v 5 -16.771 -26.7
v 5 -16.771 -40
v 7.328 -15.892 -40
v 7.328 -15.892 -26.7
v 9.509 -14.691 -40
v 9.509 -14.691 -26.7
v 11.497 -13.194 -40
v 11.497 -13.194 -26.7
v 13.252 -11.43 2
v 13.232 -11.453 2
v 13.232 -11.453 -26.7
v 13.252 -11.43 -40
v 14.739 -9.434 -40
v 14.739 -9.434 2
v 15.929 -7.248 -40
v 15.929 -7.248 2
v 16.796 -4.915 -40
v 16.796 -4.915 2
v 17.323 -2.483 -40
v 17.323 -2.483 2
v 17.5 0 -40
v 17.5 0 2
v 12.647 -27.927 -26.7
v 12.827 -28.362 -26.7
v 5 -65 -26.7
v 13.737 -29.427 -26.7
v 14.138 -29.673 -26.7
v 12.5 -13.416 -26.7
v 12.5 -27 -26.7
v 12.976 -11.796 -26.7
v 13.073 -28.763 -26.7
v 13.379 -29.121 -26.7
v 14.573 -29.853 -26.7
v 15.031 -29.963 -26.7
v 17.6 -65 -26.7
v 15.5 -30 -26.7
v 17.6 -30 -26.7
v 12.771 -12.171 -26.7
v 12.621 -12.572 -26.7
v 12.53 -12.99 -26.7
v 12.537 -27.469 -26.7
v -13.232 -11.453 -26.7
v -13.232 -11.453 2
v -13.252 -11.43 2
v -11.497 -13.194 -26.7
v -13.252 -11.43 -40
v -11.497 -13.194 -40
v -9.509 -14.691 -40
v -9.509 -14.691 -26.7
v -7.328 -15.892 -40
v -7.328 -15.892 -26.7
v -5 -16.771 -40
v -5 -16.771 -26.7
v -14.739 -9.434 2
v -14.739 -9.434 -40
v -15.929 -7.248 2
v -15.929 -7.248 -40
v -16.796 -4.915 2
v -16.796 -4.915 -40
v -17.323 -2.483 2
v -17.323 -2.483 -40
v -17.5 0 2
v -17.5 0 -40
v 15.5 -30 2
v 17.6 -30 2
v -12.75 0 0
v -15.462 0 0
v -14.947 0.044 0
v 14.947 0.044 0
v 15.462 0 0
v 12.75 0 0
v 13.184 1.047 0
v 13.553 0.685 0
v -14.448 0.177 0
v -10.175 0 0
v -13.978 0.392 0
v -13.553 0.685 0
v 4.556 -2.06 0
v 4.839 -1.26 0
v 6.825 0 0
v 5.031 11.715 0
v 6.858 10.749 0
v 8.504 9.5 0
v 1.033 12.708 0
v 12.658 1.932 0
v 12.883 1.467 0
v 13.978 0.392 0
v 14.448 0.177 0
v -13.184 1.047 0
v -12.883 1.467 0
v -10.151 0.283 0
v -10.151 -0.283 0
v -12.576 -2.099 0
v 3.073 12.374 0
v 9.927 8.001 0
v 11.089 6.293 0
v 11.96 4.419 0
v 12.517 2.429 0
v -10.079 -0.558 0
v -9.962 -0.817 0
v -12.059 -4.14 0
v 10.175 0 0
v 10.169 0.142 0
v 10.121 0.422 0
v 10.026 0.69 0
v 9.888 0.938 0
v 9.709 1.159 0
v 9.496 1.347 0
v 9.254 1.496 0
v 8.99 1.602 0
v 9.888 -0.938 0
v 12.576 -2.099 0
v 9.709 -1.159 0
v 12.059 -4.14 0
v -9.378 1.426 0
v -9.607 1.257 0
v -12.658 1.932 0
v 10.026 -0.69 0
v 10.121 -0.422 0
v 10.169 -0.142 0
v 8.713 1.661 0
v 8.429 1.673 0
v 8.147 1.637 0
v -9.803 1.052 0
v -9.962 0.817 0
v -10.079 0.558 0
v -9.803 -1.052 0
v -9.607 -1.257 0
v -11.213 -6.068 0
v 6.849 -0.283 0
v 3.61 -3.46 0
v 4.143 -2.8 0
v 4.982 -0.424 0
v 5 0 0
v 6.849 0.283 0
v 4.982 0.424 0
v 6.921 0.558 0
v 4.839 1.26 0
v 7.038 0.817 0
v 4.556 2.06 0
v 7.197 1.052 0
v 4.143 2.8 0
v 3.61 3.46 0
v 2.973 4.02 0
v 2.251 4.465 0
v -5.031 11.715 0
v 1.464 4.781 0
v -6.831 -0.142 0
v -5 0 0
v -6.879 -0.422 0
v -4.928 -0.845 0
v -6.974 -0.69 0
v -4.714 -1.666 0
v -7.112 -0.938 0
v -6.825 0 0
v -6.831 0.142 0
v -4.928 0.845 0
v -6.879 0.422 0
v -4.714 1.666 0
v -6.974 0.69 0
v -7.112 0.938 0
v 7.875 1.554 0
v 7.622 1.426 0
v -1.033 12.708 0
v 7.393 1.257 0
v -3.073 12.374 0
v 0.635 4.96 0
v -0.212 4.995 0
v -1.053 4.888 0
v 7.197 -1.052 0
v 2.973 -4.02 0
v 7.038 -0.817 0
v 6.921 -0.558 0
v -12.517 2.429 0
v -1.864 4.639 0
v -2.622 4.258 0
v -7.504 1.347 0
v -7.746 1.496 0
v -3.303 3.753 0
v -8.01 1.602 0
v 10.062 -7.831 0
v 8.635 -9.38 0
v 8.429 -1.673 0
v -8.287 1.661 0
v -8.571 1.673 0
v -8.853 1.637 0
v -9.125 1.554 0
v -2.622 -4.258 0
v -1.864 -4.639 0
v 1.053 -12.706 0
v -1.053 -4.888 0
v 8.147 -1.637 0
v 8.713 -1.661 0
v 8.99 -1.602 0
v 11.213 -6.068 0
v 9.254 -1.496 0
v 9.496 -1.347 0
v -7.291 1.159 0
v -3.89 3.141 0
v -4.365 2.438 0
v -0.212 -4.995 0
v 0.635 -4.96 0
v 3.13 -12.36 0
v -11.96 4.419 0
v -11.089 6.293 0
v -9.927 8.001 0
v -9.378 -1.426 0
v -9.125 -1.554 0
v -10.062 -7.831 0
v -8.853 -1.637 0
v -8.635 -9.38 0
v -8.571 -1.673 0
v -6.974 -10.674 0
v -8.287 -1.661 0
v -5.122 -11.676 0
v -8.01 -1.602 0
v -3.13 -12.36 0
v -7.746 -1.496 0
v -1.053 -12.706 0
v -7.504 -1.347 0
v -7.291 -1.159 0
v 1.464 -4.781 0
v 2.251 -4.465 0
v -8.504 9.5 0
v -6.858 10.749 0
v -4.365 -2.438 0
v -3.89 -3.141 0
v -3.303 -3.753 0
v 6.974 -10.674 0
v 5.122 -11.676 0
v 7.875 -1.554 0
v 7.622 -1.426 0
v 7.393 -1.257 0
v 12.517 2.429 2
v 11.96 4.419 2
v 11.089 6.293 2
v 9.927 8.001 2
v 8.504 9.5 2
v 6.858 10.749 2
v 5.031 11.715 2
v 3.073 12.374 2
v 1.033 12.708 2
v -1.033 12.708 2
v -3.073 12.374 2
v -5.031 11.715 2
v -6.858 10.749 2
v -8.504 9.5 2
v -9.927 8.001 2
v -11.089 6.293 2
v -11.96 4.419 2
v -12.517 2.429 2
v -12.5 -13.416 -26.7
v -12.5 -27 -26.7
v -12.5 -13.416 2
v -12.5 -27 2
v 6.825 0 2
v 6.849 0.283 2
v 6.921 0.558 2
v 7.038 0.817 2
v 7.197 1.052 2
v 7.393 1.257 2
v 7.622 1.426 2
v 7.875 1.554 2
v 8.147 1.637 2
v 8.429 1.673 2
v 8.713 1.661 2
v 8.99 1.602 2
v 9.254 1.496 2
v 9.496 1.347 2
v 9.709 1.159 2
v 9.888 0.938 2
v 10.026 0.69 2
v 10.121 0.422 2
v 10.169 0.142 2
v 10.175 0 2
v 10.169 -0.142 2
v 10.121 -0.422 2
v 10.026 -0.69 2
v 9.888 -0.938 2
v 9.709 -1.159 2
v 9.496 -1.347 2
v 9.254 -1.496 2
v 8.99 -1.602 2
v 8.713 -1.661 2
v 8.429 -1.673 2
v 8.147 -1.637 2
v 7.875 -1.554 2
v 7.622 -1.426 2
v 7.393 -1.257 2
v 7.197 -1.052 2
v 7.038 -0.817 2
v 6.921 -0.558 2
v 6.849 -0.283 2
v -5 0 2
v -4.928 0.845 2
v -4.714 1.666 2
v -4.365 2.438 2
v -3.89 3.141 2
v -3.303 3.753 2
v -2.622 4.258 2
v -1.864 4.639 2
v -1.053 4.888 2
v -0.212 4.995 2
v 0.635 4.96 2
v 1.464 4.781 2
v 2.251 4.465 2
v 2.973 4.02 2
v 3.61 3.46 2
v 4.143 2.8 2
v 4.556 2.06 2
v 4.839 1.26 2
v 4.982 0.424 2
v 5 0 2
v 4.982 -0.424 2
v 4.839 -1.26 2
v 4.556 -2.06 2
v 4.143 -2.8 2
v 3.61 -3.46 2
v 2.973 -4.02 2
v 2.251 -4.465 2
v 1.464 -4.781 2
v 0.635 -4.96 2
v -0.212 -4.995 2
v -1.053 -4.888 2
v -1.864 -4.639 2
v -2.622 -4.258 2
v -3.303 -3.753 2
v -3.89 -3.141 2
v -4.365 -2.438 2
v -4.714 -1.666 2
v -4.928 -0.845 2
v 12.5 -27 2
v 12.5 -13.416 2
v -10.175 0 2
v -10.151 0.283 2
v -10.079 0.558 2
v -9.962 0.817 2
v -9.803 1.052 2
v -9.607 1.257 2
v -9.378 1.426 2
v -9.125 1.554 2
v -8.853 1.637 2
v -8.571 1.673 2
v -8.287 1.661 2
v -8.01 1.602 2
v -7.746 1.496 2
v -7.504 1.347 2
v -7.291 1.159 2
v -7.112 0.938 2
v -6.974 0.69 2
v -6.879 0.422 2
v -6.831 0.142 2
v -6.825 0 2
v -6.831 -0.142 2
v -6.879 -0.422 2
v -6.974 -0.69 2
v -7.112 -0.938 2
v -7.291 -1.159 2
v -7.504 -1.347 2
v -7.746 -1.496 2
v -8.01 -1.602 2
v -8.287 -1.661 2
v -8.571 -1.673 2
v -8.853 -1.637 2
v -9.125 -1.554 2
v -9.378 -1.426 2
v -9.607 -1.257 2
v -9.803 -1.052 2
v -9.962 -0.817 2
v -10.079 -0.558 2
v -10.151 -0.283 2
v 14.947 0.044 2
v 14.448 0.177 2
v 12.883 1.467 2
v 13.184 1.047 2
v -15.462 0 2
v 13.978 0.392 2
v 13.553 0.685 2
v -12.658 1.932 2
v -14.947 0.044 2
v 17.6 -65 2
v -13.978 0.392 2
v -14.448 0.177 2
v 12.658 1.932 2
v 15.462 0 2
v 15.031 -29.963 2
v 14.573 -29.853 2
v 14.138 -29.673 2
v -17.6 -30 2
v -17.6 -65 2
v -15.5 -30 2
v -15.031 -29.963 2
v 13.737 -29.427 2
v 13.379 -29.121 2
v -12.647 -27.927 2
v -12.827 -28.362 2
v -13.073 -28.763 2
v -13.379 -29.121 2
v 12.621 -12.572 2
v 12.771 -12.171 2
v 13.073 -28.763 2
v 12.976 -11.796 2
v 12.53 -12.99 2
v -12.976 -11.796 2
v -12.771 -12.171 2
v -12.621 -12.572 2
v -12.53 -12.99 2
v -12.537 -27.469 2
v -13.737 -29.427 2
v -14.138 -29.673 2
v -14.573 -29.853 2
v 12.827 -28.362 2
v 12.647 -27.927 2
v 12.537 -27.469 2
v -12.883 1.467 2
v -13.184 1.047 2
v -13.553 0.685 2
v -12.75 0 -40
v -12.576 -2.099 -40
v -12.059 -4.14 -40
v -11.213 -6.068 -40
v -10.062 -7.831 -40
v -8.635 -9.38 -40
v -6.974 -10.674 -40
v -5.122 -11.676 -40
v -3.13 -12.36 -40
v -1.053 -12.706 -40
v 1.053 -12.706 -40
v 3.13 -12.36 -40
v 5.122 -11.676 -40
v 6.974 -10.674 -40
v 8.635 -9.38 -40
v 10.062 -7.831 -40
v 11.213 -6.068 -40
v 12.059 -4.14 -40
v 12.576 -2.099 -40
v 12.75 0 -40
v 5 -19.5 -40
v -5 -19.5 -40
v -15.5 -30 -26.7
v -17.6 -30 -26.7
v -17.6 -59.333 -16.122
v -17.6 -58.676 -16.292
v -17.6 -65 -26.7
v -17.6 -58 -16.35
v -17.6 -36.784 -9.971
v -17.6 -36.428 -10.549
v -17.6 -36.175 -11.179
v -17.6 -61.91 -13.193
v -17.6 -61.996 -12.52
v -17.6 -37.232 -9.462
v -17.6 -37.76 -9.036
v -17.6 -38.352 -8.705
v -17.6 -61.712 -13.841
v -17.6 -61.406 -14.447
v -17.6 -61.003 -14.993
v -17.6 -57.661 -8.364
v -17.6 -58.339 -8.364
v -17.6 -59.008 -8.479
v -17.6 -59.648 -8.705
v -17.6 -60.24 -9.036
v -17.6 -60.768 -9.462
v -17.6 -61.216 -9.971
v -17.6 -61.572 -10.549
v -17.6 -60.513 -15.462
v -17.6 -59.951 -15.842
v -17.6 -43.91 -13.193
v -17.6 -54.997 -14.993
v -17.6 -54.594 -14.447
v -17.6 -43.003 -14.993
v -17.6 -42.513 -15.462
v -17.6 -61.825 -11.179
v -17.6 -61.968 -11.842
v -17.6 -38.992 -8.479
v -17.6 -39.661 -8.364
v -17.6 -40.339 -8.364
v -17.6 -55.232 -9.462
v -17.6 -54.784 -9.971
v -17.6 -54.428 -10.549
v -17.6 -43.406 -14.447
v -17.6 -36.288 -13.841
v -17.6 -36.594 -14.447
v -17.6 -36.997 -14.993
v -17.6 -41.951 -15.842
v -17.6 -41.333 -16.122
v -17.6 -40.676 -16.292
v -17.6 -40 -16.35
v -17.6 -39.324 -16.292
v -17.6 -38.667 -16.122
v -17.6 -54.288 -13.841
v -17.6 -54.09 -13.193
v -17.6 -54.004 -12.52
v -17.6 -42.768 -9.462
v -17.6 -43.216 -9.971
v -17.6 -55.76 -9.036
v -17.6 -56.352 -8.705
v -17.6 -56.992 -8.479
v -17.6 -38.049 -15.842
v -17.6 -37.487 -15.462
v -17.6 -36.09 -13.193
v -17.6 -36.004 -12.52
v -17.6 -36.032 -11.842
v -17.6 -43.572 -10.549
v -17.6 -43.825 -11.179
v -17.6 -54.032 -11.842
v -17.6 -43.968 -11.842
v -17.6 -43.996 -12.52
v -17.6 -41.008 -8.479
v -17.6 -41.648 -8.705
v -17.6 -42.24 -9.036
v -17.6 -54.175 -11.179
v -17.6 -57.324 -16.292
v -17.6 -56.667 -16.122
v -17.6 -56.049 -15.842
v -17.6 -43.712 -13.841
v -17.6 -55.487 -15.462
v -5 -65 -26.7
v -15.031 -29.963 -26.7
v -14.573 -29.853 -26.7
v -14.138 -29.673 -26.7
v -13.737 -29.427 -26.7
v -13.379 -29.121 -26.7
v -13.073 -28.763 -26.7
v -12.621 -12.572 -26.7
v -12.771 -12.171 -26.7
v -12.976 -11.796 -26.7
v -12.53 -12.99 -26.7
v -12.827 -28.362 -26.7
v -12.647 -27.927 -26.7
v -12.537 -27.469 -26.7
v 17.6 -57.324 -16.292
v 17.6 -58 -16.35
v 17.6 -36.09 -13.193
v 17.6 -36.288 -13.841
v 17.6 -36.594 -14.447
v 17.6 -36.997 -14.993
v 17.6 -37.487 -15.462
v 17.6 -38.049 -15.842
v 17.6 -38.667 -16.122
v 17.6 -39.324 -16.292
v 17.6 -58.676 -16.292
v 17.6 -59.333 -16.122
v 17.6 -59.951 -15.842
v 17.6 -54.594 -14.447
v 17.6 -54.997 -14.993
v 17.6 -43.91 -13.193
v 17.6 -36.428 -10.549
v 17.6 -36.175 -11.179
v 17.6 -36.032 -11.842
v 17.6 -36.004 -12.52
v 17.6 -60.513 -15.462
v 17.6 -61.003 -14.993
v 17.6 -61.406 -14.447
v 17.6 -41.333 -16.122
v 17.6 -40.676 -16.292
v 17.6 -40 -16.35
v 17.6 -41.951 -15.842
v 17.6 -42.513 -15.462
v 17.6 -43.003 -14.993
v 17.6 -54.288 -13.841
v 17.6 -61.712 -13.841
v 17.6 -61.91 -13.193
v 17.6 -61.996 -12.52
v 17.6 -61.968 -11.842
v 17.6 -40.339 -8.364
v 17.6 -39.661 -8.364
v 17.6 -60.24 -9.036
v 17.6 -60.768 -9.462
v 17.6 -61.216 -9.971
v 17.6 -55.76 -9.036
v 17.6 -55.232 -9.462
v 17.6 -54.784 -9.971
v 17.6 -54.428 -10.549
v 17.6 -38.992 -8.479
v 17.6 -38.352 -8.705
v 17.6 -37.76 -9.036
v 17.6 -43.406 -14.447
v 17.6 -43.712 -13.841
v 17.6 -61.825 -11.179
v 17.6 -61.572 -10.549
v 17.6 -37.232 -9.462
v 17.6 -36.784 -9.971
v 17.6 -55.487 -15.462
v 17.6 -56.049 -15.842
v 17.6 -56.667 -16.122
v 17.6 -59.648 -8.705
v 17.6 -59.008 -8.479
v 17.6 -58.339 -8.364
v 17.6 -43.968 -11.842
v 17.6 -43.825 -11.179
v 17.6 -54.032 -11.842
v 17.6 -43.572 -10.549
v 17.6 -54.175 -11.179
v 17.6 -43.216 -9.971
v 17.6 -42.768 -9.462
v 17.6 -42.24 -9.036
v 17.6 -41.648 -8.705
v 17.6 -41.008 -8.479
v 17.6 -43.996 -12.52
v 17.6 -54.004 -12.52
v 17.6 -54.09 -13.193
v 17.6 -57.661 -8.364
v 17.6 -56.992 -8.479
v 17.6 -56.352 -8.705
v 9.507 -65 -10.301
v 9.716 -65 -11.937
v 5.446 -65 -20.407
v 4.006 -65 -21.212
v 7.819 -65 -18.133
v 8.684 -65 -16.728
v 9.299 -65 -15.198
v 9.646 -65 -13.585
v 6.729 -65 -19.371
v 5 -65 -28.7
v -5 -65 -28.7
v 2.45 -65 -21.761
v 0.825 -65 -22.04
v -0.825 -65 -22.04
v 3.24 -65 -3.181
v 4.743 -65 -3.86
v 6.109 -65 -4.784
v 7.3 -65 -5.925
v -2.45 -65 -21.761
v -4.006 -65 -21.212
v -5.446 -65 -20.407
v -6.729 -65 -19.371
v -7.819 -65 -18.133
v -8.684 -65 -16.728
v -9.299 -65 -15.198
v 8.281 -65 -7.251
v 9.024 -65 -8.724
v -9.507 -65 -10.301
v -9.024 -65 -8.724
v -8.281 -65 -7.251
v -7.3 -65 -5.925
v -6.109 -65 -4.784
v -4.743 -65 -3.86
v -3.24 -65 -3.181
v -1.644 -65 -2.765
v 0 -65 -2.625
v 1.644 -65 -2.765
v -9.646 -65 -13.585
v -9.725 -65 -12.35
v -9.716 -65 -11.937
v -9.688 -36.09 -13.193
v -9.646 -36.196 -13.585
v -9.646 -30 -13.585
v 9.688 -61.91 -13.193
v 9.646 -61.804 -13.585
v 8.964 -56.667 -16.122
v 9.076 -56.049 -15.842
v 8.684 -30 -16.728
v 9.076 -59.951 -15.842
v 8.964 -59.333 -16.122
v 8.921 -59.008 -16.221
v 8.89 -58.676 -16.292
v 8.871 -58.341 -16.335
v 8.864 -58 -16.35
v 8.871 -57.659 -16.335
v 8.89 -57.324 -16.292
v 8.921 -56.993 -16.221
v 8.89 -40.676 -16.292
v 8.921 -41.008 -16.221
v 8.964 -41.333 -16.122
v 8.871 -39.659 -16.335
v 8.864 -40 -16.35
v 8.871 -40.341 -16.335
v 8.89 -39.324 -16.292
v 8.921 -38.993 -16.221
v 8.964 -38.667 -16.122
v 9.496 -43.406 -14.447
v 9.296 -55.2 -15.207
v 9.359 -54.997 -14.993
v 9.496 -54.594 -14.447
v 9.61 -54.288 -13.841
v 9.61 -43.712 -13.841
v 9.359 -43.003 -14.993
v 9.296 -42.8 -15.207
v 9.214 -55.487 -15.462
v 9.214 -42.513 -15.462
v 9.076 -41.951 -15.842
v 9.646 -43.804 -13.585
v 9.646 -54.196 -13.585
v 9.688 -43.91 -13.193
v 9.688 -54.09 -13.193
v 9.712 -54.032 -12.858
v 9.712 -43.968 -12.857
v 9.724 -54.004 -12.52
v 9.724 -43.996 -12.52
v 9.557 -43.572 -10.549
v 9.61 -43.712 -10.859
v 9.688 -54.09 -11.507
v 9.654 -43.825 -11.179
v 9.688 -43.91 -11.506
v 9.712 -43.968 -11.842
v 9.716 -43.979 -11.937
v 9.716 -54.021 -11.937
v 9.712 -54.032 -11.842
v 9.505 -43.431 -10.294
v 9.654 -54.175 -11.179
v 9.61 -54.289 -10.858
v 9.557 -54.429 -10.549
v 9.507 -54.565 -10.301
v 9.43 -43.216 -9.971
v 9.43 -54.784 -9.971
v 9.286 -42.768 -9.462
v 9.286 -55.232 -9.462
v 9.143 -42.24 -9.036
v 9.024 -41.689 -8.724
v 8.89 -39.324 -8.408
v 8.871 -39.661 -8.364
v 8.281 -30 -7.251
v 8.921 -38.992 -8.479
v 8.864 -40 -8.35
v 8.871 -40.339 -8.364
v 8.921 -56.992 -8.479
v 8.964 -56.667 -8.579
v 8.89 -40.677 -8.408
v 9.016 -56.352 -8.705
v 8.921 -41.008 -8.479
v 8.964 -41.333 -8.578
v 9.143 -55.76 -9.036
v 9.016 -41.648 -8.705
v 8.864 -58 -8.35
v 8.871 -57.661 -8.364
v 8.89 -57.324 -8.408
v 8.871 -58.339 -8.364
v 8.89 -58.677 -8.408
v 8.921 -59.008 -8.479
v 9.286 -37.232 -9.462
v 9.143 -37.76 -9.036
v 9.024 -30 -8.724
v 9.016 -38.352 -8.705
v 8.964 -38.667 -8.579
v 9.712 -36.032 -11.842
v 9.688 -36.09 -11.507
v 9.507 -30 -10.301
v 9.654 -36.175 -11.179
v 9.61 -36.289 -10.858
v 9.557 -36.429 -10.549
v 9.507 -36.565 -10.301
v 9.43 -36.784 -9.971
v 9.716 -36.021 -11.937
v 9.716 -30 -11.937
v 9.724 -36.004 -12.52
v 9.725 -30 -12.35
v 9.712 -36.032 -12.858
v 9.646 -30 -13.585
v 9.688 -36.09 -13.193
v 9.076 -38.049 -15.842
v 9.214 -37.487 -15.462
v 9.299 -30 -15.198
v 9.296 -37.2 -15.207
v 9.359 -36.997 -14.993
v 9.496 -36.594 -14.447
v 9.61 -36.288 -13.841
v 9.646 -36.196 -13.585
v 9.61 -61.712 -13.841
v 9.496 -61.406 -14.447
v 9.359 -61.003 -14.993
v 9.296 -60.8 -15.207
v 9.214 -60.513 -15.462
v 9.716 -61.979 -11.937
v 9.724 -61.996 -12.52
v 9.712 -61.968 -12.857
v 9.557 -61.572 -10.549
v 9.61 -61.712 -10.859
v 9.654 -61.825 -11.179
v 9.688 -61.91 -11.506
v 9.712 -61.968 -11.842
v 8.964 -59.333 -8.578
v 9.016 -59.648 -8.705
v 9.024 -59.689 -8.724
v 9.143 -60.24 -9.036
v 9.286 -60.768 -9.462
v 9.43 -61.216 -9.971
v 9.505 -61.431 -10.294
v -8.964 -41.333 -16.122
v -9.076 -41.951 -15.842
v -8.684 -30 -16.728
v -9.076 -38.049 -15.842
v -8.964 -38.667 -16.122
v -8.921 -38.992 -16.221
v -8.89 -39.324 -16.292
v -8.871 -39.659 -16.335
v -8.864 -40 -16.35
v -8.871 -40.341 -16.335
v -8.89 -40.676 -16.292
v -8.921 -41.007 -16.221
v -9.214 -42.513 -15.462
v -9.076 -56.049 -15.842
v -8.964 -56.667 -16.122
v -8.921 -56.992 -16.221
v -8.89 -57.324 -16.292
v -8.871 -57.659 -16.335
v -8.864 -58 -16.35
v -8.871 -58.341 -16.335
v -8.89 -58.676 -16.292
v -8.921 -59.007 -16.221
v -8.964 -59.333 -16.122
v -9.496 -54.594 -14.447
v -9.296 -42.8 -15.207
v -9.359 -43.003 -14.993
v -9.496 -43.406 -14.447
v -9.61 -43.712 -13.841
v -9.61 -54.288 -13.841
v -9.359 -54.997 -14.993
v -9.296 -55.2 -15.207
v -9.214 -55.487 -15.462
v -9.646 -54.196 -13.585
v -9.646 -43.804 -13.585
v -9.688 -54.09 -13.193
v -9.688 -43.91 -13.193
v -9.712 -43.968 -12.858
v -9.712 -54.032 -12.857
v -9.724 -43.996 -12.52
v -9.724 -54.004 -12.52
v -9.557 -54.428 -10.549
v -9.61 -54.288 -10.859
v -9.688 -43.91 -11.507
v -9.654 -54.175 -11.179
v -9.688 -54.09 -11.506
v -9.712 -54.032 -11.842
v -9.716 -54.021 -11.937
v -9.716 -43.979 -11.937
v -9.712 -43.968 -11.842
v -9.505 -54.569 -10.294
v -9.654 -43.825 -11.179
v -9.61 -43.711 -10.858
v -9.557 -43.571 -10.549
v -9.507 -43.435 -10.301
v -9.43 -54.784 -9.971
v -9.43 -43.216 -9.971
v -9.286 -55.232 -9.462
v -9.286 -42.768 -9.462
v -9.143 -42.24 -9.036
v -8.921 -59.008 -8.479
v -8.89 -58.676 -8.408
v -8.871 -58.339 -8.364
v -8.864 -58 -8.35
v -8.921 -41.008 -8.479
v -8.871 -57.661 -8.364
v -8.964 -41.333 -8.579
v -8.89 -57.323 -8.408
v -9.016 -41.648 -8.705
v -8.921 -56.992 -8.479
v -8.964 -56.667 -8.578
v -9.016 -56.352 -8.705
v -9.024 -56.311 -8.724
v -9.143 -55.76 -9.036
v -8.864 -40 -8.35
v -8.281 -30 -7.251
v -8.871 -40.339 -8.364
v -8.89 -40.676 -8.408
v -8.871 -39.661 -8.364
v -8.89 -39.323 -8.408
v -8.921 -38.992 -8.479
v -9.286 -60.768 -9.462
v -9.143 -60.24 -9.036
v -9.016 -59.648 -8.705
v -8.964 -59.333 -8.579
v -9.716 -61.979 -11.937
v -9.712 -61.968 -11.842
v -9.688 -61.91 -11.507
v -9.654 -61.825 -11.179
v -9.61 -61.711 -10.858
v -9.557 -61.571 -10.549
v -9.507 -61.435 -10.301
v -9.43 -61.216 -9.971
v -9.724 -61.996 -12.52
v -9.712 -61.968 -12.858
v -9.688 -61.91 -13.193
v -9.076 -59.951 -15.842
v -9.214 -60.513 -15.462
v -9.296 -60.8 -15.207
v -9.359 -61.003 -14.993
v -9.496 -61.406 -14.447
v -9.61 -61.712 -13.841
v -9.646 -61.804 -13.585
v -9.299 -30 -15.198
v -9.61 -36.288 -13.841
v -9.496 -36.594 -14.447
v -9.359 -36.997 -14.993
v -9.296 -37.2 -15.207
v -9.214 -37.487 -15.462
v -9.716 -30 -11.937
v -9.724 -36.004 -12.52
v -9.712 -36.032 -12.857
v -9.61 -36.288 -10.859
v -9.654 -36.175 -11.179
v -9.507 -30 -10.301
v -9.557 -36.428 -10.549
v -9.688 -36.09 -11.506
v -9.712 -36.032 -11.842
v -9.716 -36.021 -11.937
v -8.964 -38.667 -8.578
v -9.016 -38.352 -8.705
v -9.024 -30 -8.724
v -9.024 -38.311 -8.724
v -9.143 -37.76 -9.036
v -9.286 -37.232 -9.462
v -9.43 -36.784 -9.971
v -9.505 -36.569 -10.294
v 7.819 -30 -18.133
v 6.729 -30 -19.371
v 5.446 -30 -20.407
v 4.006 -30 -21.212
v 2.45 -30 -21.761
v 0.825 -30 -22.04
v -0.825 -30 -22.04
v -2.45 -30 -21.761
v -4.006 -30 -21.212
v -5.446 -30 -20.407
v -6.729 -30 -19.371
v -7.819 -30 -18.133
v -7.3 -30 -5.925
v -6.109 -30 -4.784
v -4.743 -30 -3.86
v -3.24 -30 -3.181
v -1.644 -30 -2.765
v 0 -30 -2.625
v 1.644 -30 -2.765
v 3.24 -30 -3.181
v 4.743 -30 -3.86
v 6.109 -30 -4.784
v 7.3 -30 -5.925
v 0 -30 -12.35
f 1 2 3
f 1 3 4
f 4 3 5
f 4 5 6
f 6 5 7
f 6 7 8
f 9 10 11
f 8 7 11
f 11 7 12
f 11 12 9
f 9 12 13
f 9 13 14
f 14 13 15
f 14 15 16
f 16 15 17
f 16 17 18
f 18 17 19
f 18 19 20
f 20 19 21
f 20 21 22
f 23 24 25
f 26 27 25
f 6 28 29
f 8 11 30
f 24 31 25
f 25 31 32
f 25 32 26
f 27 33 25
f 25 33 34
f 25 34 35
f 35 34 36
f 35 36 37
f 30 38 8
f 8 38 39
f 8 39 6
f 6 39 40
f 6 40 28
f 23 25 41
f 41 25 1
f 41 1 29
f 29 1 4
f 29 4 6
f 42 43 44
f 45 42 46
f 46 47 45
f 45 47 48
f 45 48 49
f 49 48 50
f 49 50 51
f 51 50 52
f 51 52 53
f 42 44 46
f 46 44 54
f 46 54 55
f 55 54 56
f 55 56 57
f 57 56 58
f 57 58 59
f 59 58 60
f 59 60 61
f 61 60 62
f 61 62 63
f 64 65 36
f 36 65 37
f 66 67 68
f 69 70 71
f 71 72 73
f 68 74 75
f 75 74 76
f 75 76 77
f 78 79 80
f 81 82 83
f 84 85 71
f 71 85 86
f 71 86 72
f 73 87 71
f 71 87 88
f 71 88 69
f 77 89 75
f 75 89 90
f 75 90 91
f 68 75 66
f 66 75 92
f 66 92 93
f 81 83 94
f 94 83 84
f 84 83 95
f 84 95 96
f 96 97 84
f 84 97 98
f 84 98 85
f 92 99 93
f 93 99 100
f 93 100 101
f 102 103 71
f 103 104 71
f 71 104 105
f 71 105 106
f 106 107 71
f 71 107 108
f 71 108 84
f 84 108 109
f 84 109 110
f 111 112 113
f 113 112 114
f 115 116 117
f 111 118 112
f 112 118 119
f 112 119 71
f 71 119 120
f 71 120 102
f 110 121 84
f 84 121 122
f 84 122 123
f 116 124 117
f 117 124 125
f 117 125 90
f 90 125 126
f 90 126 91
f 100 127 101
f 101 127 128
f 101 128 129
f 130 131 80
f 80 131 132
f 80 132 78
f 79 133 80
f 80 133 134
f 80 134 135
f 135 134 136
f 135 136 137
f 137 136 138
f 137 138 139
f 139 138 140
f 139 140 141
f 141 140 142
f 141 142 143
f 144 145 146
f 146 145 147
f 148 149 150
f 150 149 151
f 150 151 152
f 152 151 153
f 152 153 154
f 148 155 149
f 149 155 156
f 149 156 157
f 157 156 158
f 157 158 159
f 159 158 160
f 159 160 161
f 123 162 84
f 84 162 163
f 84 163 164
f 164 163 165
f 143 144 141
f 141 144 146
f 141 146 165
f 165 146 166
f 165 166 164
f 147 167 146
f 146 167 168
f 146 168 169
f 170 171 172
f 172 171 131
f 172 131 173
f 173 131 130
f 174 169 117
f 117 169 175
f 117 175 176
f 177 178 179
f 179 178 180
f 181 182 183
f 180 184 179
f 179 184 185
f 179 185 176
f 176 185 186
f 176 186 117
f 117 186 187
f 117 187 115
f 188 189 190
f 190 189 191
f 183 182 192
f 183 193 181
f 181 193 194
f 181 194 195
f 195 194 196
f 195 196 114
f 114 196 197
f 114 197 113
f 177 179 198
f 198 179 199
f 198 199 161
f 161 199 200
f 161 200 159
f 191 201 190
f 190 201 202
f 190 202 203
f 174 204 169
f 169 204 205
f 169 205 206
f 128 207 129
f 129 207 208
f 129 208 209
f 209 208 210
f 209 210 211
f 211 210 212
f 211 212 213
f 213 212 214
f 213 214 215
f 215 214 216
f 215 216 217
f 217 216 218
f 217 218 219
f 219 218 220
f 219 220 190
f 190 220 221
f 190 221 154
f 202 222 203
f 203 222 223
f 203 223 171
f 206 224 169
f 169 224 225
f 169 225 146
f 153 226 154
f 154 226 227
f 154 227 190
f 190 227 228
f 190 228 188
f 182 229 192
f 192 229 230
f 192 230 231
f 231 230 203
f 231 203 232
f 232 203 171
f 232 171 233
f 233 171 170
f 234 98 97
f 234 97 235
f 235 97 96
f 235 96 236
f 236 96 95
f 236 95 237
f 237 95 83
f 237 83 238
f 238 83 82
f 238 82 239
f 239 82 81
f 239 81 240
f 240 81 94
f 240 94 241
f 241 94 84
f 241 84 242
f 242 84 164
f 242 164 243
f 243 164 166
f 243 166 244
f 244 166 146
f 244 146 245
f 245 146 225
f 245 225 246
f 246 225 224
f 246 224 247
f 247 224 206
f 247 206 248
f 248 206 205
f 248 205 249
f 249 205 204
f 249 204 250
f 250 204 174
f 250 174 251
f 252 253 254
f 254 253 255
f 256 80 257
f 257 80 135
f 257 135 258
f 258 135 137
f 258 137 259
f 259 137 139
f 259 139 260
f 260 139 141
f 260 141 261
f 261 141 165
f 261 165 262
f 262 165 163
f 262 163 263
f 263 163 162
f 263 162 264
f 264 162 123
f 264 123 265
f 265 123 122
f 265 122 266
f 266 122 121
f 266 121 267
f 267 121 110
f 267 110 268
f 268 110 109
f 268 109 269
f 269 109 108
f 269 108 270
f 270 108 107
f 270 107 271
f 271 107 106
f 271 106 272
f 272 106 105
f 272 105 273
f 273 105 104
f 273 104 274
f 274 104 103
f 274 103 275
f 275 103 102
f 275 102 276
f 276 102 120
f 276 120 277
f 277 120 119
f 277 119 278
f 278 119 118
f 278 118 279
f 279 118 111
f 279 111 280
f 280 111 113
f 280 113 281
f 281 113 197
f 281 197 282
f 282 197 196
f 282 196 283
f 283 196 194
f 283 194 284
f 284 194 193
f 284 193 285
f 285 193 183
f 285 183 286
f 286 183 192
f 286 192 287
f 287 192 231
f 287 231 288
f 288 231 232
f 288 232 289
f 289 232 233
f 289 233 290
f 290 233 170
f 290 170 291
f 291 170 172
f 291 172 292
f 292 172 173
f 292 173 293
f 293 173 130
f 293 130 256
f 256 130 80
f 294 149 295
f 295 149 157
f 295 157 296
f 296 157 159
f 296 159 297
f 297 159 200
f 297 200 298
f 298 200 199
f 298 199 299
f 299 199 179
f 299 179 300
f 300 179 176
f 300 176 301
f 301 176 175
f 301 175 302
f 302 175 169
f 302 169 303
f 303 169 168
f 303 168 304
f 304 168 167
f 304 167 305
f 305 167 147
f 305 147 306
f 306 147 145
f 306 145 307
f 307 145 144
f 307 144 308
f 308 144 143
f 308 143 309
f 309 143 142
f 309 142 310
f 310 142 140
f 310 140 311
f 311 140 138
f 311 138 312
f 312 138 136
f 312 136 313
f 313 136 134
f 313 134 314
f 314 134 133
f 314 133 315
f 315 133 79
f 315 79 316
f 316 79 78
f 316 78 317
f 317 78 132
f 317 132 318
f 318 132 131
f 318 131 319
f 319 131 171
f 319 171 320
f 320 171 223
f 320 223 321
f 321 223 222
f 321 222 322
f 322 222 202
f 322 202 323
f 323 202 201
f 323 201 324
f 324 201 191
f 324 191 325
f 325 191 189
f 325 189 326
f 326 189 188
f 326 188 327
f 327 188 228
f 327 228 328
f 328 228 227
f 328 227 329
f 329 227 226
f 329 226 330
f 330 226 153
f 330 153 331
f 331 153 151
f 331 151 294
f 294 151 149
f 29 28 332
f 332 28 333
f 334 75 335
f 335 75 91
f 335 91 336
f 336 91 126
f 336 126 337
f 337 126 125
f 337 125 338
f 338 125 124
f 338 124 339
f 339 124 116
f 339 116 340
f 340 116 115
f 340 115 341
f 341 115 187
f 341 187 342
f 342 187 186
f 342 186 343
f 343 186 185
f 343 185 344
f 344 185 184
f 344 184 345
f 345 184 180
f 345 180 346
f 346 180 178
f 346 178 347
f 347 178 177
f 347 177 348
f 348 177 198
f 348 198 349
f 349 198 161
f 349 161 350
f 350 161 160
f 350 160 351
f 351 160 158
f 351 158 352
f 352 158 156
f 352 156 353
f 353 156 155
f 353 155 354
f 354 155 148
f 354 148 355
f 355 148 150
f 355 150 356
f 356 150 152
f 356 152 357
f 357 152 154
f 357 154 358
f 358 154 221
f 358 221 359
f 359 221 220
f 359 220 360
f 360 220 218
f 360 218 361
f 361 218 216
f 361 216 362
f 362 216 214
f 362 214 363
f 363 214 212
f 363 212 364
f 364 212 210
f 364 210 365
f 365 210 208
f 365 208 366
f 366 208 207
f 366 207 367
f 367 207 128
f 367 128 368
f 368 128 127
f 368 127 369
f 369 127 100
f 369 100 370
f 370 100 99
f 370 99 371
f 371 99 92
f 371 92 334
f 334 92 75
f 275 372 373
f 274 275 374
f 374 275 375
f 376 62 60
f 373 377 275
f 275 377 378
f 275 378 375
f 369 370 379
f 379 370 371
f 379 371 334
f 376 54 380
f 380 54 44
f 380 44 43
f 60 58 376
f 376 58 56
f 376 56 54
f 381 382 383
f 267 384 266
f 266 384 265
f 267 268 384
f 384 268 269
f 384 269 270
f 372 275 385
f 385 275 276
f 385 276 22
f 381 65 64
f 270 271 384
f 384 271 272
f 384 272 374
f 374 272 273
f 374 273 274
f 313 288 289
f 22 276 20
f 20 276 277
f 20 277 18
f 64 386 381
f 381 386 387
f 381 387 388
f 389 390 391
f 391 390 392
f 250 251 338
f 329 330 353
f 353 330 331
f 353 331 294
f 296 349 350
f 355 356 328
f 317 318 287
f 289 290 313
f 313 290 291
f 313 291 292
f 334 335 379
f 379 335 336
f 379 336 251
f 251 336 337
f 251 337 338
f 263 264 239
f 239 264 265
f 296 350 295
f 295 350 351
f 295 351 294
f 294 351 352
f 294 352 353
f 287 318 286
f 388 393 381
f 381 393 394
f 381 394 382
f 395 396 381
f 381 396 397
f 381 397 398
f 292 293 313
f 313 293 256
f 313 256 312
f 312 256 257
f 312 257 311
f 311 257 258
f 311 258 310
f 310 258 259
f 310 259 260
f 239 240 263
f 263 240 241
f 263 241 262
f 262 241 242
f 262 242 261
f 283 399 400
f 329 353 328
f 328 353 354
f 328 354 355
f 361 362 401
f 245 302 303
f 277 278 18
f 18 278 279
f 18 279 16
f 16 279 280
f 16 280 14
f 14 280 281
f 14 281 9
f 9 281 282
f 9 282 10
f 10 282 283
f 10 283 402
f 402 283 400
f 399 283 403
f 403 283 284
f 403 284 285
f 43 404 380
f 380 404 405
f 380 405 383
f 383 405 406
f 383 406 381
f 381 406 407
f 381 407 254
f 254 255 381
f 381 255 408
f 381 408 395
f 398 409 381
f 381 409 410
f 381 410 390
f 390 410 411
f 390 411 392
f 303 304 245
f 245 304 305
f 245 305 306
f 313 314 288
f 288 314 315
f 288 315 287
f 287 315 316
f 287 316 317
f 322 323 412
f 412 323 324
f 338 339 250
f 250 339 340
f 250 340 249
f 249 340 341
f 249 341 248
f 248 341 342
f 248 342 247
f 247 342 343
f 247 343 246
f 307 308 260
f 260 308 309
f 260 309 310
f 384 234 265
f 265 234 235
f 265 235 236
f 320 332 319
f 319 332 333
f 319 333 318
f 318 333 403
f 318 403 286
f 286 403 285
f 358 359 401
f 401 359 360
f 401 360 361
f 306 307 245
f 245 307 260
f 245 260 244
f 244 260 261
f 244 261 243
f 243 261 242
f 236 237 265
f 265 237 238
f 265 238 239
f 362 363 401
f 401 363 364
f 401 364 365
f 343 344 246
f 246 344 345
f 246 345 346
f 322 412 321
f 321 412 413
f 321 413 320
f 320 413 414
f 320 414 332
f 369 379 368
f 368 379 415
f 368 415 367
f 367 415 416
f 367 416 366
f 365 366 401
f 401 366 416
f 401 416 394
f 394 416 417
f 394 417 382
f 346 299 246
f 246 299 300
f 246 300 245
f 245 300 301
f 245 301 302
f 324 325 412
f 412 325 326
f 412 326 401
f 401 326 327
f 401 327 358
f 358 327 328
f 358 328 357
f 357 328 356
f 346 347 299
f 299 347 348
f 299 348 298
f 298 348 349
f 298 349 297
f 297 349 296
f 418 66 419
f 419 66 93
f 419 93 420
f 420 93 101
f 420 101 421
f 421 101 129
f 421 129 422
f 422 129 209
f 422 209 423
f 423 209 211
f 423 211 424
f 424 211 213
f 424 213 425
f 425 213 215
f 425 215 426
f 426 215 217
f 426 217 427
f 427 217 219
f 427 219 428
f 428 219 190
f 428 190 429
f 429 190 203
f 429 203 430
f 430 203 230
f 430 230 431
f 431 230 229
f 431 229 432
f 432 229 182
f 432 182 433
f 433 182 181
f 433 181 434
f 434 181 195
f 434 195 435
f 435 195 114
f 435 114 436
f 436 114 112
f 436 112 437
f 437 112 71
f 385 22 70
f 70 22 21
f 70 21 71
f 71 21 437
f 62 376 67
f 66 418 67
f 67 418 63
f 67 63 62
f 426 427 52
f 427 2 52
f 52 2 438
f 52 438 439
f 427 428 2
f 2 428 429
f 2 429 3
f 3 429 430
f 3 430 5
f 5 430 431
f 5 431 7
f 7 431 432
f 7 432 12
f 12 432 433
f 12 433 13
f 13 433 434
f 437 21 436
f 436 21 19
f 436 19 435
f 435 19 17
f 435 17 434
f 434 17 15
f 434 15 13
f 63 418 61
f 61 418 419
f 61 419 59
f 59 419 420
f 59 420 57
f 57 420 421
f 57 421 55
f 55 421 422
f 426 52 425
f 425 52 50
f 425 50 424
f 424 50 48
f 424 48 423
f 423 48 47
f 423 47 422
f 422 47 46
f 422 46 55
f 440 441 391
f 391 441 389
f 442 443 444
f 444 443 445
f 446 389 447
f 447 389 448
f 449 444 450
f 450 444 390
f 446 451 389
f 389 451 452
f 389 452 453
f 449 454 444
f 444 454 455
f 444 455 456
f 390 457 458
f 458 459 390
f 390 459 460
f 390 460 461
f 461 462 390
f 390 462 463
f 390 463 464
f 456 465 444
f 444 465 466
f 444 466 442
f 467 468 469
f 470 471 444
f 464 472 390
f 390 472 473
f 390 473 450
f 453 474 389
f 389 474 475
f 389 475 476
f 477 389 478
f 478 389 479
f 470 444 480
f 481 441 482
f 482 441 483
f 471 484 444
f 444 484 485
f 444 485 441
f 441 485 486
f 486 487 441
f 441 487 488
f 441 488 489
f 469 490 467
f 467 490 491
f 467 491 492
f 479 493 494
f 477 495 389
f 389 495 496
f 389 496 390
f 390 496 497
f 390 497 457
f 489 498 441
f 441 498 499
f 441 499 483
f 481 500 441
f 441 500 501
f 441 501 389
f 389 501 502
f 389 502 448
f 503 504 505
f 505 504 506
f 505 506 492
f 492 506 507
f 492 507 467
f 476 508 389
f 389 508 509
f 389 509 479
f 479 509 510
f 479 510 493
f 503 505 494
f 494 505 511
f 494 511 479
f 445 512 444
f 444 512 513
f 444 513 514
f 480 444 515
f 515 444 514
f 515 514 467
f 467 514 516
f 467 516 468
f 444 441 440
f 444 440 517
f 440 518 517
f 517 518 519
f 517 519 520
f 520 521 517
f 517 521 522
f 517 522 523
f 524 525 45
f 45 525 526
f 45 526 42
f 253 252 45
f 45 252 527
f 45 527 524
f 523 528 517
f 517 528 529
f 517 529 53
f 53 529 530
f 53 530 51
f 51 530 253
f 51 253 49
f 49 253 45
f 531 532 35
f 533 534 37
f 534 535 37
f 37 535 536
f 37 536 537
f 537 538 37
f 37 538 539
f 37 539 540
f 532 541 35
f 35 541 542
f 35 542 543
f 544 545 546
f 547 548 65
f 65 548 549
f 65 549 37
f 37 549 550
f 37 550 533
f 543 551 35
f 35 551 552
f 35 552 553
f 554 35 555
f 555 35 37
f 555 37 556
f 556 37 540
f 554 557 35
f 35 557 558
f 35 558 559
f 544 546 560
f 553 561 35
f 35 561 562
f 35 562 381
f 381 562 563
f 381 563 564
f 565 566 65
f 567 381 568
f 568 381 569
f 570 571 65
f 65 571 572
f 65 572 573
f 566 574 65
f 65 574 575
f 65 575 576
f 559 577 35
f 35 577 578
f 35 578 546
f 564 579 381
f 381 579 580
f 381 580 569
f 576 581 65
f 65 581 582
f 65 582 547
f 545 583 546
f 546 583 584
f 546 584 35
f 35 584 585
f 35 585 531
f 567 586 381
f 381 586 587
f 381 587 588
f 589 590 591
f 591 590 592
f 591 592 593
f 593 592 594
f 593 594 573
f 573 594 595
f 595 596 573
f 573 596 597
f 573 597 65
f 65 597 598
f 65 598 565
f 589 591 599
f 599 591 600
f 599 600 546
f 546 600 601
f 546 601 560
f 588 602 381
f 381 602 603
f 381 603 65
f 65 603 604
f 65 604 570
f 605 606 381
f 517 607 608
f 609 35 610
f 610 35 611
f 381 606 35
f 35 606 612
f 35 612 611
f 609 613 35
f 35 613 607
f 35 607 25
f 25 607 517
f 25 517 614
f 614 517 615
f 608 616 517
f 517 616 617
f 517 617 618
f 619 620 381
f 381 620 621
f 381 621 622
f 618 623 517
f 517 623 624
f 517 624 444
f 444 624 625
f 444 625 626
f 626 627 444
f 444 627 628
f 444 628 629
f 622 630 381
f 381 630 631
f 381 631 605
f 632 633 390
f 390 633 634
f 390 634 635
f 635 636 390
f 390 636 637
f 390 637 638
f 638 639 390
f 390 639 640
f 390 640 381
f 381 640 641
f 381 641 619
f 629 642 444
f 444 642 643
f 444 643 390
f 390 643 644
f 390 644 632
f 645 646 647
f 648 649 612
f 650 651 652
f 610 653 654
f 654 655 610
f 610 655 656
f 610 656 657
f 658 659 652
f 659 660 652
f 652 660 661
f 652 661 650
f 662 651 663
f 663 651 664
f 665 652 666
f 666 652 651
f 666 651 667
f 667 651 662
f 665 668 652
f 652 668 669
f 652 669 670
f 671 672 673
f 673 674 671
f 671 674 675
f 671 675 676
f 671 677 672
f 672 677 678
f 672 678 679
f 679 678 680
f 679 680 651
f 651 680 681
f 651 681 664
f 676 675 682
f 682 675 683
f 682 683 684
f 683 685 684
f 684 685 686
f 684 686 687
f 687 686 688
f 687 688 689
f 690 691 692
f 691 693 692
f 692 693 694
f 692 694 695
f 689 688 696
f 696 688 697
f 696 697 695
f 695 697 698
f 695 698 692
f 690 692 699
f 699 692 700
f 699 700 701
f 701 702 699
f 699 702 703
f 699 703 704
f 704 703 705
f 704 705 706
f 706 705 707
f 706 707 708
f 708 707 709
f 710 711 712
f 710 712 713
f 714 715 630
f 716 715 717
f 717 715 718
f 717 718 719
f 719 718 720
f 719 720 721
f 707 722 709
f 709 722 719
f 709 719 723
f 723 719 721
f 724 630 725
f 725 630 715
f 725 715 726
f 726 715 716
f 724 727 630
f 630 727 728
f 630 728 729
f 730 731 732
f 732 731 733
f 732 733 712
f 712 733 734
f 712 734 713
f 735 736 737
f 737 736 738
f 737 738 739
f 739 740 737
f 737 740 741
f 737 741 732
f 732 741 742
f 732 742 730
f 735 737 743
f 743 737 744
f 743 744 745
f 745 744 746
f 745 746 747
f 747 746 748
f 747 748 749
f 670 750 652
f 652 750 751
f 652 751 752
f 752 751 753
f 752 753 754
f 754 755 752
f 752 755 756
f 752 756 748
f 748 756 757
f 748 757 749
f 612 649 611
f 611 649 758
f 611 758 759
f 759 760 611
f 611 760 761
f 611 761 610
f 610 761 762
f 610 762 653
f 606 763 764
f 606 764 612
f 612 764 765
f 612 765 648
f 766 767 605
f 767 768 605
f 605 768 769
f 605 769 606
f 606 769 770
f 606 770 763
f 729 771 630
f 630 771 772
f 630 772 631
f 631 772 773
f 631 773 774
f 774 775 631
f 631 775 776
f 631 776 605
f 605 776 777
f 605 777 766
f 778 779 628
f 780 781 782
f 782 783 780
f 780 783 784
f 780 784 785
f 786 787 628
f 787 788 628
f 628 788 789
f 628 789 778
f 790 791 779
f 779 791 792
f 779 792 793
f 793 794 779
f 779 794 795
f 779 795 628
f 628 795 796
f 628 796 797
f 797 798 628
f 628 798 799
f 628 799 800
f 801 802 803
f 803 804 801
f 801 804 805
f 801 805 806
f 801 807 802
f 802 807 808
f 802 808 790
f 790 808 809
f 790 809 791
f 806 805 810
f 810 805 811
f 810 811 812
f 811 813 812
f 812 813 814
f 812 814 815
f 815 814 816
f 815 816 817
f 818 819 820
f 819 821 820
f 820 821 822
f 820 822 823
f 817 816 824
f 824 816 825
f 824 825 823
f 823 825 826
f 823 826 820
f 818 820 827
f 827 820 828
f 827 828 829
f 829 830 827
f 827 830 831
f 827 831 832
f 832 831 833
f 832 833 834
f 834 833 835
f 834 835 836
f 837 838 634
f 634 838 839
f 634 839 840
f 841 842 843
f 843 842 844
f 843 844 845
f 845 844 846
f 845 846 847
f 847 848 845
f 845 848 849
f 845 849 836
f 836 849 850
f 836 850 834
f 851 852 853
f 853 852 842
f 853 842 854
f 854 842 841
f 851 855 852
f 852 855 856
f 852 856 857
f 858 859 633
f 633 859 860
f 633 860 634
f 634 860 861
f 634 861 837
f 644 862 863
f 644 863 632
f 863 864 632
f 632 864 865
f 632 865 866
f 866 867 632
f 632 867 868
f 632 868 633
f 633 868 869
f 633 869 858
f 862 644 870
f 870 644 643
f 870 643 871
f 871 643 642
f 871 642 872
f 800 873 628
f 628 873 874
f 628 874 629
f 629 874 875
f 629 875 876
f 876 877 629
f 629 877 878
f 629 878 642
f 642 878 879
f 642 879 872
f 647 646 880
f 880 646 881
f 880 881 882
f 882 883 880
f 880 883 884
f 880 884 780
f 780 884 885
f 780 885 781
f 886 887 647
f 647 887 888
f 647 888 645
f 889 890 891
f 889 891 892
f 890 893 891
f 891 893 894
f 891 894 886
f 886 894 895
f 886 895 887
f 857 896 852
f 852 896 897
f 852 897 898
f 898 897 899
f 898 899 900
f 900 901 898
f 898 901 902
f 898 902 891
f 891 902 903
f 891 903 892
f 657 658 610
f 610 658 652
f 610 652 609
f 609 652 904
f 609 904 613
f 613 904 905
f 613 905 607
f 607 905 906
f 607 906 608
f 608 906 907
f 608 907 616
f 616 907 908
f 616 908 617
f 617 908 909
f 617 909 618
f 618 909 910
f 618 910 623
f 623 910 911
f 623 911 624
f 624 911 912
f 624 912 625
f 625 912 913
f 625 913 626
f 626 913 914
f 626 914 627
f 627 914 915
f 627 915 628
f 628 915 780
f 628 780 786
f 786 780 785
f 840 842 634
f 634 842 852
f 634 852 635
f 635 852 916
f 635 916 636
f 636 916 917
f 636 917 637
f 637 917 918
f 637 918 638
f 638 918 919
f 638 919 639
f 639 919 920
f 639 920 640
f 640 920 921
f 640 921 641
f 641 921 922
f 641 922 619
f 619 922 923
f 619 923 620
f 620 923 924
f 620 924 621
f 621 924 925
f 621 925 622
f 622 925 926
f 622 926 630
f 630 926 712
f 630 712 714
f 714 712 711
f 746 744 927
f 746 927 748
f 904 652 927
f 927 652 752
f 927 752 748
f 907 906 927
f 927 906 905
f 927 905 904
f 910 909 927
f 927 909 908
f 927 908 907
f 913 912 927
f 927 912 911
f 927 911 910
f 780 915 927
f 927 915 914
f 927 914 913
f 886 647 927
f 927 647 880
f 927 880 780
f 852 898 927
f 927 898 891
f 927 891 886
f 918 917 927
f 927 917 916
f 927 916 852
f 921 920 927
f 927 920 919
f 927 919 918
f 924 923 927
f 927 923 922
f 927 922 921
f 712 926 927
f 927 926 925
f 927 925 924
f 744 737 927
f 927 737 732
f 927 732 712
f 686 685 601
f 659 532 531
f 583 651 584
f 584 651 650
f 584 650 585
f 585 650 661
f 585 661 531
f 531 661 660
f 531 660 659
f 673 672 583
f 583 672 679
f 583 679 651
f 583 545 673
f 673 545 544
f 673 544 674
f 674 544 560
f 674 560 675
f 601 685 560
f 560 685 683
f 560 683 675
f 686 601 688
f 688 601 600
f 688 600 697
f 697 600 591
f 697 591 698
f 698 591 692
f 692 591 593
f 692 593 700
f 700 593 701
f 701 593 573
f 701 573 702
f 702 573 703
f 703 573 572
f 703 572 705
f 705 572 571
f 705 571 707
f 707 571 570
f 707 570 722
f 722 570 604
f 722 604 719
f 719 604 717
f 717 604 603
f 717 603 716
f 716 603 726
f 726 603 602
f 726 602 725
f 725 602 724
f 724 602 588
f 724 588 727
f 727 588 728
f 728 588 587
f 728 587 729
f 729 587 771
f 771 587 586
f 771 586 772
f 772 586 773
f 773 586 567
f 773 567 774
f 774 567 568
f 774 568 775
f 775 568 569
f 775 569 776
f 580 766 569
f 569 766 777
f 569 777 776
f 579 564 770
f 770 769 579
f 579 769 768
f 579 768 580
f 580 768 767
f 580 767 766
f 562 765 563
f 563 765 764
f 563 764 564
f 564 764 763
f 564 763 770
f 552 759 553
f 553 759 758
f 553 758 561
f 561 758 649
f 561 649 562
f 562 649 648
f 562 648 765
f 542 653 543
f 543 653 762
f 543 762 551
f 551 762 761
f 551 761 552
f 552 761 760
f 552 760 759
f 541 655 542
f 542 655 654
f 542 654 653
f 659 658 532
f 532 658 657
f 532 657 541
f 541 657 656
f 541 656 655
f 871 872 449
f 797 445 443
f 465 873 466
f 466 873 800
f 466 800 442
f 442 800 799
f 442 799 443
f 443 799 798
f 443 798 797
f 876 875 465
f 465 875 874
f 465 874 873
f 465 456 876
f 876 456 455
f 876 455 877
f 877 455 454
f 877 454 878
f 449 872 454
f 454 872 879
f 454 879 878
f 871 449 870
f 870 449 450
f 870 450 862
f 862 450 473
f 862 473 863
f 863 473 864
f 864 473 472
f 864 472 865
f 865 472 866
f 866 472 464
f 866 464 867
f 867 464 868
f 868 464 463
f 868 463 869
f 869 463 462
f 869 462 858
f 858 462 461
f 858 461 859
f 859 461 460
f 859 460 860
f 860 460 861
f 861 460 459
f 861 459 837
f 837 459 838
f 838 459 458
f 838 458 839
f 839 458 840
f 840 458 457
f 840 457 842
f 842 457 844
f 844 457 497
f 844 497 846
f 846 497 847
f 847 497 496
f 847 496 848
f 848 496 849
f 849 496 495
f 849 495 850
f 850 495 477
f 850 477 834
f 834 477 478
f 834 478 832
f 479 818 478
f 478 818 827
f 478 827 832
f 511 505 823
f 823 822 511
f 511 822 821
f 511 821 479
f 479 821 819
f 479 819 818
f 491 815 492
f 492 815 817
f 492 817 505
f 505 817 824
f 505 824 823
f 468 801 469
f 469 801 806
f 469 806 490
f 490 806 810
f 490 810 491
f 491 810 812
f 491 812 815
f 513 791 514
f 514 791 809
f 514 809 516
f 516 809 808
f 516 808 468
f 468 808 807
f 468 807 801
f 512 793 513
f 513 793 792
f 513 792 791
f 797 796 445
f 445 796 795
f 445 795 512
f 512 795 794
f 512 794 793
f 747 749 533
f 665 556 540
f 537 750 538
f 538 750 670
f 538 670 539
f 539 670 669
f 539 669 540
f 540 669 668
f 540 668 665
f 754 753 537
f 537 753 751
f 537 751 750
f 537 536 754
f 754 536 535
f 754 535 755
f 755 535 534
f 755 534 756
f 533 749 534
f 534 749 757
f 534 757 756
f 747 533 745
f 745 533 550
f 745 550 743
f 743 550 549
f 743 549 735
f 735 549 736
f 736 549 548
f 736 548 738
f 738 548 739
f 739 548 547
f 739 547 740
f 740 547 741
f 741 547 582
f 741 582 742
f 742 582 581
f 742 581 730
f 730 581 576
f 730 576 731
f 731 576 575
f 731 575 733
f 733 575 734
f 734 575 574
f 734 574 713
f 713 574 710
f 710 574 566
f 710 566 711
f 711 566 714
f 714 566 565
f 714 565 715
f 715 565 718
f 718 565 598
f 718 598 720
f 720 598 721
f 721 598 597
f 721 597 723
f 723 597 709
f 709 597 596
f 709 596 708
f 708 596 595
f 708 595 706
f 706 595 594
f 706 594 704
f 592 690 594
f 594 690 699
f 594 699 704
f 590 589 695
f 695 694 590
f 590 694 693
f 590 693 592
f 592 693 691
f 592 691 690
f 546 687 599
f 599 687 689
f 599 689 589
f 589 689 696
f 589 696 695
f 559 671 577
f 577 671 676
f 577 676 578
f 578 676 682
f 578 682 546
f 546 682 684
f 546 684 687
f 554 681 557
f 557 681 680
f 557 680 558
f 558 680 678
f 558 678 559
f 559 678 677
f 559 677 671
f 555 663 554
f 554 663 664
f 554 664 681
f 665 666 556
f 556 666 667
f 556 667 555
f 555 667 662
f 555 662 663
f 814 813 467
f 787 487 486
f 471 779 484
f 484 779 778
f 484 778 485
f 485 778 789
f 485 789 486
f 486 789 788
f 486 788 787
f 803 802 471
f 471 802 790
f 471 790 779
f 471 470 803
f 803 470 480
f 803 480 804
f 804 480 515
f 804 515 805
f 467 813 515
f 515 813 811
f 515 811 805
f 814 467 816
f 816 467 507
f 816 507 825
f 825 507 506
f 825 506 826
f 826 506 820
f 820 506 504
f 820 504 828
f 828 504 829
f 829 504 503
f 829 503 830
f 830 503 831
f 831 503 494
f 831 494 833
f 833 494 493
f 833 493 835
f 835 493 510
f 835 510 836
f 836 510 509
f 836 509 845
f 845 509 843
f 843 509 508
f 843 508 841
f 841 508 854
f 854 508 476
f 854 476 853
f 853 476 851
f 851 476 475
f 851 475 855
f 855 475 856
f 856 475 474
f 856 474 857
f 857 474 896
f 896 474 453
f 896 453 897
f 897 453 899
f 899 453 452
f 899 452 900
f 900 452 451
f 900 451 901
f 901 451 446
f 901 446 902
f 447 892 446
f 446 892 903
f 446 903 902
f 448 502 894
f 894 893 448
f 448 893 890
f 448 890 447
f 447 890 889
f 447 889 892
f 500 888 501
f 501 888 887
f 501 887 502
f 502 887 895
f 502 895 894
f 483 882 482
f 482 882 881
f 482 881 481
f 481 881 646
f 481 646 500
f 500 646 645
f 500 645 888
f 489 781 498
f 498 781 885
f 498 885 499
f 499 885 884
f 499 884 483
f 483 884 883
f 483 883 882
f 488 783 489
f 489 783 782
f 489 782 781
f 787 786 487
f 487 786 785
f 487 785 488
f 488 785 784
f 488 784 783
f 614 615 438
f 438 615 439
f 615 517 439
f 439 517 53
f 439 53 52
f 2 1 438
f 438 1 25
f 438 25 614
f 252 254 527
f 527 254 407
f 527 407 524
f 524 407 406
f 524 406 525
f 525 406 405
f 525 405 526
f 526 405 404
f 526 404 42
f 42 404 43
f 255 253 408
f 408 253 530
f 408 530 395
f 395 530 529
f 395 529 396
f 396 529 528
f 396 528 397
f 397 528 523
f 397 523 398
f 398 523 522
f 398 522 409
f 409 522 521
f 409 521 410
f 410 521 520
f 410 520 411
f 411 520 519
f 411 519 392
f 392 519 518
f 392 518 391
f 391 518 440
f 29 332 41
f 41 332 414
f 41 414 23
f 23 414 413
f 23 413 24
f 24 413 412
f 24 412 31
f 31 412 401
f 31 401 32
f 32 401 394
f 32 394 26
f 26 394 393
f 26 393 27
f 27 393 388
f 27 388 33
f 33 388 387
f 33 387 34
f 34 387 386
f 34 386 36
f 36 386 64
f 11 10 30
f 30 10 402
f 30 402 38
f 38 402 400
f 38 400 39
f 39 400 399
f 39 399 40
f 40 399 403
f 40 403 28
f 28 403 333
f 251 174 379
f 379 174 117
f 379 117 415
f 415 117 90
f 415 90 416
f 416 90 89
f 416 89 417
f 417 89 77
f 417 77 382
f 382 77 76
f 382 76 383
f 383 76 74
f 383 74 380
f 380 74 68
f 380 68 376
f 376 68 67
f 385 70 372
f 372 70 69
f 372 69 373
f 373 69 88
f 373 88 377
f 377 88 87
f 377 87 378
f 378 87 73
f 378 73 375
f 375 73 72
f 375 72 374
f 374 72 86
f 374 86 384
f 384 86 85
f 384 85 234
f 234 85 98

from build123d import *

# Parameters (mm, degrees)
SKETCH2_R               = 12.75
SKETCH2_R_2             = 5
SKETCH2_R_3             = 1.675
BOSS_EXTRUDE3_DEPTH     = 2
BOSS_EXTRUDE4_START     = -40
BOSS_EXTRUDE4_DEPTH     = 42
BOSS_EXTRUDE6_START     = -30
SKETCH7_W               = 35.2
SKETCH7_H               = 28.7
SKETCH7_R               = 9.725
BOSS_EXTRUDE6_DEPTH     = 35
BOSS_EXTRUDE7_START     = -26.7
BOSS_EXTRUDE7_DEPTH     = 26.7
CUT_EXTRUDE1_DEPTH      = 79.324708745
CUT_EXTRUDE1_DEPTH_BACK = 79.324708745
SKETCH6_R               = 4
RIB3_START              = -5
RIB3_DEPTH              = 10
FILLET2_R               = 3


with BuildPart() as part:
    # Sketch2 → Boss-Extrude3 (new body)
    # profile 1 of 2: a face of its own
    with BuildSketch(Plane.XY):
        Circle(SKETCH2_R)
        Circle(SKETCH2_R_2, mode=Mode.SUBTRACT)
        with Locations((8.5, 0)):
            Circle(SKETCH2_R_3, mode=Mode.SUBTRACT)
        with Locations((-8.5, 0)):
            Circle(SKETCH2_R_3, mode=Mode.SUBTRACT)
    # profile 2 of 2: a face of its own
    with BuildSketch(Plane.XY):
        with BuildLine():
            Line((12.5, -30), (12.5, -2.512468905))
            ThreePointArc((12.5, -2.512468905), (0, -12.75), (-12.5, -2.512468905))
            Line((-12.5, -2.512468905), (-12.5, -30))
            Line((-12.5, -30), (12.5, -30))
        make_face()
    extrude(amount=BOSS_EXTRUDE3_DEPTH)

    # Sketch3 → Boss-Extrude4 (add)
    with BuildSketch(Plane.XY.offset(BOSS_EXTRUDE4_START)):
        with BuildLine():
            Line((17.5, 0), (12.75, 0))
            ThreePointArc((12.75, 0), (0, -12.75), (-12.75, 0))
            Line((-12.75, 0), (-17.5, 0))
            ThreePointArc((-17.5, 0), (0, -17.5), (17.5, 0))
        make_face()
    extrude(amount=BOSS_EXTRUDE4_DEPTH)

    # Sketch7 → Boss-Extrude6 (add)
    with BuildSketch(Plane(origin=(0, 0, 0), x_dir=(1, 0, 0), z_dir=(0, 1, 0)).offset(BOSS_EXTRUDE6_START)):
        with Locations((0, 12.35)):
            Rectangle(SKETCH7_W, SKETCH7_H)
        with Locations(Location((0, 12.35, 0), (0, 0, 180))):
            Circle(SKETCH7_R, mode=Mode.SUBTRACT)
    extrude(amount=-BOSS_EXTRUDE6_DEPTH)

    # Sketch2<8> → Boss-Extrude7 (add)
    with BuildSketch(Plane.XY.offset(BOSS_EXTRUDE7_START)):
        with BuildLine():
            Line((12.5, -30), (12.5, -2.512468905))
            ThreePointArc((12.5, -2.512468905), (0, -12.75), (-12.5, -2.512468905))
            Line((-12.5, -2.512468905), (-12.5, -30))
            Line((-12.5, -30), (12.5, -30))
        make_face()
    extrude(amount=BOSS_EXTRUDE7_DEPTH)

    # Sketch6 → Cut-Extrude1 (cut, two sides: drawn at the far end of the back side and taken through both)
    with BuildSketch(Plane(origin=(0, 0, 0), x_dir=(0, 0, -1), z_dir=(1, 0, 0)).offset(-CUT_EXTRUDE1_DEPTH_BACK)):
        with Locations((12.35, -40)):
            Circle(SKETCH6_R)
        with Locations((12.35, -58)):
            Circle(SKETCH6_R)
    extrude(amount=CUT_EXTRUDE1_DEPTH + CUT_EXTRUDE1_DEPTH_BACK, mode=Mode.SUBTRACT)

    # Rib3: read off the stored shape, not the designer's step
    # Rib3 outline → Rib3 (add)
    with BuildSketch(Plane(origin=(0, -60, 0), x_dir=(0, -1, 0), z_dir=(-1, 0, 0)).offset(RIB3_START)):
        Polygon((5, -28.7), (5, -26.7), (-43.229490169, -26.7), (-43.229490169, -40), (-40.5, -40), align=None)
    extrude(amount=RIB3_DEPTH)

    # Fillet2
    fillet2_edges = [part.edges().sort_by_distance(p)[0] for p in [
        (12.5, -30, -12.35),
        (-12.5, -30, -12.35),
        (-12.75, 0, 1),
        (12.5, -12.247448714, -12.35),
        (12.75, 0, 1),
        (-12.5, -12.247448714, -12.35),
    ]]
    fillet(fillet2_edges, radius=FILLET2_R)


solid = part.part
